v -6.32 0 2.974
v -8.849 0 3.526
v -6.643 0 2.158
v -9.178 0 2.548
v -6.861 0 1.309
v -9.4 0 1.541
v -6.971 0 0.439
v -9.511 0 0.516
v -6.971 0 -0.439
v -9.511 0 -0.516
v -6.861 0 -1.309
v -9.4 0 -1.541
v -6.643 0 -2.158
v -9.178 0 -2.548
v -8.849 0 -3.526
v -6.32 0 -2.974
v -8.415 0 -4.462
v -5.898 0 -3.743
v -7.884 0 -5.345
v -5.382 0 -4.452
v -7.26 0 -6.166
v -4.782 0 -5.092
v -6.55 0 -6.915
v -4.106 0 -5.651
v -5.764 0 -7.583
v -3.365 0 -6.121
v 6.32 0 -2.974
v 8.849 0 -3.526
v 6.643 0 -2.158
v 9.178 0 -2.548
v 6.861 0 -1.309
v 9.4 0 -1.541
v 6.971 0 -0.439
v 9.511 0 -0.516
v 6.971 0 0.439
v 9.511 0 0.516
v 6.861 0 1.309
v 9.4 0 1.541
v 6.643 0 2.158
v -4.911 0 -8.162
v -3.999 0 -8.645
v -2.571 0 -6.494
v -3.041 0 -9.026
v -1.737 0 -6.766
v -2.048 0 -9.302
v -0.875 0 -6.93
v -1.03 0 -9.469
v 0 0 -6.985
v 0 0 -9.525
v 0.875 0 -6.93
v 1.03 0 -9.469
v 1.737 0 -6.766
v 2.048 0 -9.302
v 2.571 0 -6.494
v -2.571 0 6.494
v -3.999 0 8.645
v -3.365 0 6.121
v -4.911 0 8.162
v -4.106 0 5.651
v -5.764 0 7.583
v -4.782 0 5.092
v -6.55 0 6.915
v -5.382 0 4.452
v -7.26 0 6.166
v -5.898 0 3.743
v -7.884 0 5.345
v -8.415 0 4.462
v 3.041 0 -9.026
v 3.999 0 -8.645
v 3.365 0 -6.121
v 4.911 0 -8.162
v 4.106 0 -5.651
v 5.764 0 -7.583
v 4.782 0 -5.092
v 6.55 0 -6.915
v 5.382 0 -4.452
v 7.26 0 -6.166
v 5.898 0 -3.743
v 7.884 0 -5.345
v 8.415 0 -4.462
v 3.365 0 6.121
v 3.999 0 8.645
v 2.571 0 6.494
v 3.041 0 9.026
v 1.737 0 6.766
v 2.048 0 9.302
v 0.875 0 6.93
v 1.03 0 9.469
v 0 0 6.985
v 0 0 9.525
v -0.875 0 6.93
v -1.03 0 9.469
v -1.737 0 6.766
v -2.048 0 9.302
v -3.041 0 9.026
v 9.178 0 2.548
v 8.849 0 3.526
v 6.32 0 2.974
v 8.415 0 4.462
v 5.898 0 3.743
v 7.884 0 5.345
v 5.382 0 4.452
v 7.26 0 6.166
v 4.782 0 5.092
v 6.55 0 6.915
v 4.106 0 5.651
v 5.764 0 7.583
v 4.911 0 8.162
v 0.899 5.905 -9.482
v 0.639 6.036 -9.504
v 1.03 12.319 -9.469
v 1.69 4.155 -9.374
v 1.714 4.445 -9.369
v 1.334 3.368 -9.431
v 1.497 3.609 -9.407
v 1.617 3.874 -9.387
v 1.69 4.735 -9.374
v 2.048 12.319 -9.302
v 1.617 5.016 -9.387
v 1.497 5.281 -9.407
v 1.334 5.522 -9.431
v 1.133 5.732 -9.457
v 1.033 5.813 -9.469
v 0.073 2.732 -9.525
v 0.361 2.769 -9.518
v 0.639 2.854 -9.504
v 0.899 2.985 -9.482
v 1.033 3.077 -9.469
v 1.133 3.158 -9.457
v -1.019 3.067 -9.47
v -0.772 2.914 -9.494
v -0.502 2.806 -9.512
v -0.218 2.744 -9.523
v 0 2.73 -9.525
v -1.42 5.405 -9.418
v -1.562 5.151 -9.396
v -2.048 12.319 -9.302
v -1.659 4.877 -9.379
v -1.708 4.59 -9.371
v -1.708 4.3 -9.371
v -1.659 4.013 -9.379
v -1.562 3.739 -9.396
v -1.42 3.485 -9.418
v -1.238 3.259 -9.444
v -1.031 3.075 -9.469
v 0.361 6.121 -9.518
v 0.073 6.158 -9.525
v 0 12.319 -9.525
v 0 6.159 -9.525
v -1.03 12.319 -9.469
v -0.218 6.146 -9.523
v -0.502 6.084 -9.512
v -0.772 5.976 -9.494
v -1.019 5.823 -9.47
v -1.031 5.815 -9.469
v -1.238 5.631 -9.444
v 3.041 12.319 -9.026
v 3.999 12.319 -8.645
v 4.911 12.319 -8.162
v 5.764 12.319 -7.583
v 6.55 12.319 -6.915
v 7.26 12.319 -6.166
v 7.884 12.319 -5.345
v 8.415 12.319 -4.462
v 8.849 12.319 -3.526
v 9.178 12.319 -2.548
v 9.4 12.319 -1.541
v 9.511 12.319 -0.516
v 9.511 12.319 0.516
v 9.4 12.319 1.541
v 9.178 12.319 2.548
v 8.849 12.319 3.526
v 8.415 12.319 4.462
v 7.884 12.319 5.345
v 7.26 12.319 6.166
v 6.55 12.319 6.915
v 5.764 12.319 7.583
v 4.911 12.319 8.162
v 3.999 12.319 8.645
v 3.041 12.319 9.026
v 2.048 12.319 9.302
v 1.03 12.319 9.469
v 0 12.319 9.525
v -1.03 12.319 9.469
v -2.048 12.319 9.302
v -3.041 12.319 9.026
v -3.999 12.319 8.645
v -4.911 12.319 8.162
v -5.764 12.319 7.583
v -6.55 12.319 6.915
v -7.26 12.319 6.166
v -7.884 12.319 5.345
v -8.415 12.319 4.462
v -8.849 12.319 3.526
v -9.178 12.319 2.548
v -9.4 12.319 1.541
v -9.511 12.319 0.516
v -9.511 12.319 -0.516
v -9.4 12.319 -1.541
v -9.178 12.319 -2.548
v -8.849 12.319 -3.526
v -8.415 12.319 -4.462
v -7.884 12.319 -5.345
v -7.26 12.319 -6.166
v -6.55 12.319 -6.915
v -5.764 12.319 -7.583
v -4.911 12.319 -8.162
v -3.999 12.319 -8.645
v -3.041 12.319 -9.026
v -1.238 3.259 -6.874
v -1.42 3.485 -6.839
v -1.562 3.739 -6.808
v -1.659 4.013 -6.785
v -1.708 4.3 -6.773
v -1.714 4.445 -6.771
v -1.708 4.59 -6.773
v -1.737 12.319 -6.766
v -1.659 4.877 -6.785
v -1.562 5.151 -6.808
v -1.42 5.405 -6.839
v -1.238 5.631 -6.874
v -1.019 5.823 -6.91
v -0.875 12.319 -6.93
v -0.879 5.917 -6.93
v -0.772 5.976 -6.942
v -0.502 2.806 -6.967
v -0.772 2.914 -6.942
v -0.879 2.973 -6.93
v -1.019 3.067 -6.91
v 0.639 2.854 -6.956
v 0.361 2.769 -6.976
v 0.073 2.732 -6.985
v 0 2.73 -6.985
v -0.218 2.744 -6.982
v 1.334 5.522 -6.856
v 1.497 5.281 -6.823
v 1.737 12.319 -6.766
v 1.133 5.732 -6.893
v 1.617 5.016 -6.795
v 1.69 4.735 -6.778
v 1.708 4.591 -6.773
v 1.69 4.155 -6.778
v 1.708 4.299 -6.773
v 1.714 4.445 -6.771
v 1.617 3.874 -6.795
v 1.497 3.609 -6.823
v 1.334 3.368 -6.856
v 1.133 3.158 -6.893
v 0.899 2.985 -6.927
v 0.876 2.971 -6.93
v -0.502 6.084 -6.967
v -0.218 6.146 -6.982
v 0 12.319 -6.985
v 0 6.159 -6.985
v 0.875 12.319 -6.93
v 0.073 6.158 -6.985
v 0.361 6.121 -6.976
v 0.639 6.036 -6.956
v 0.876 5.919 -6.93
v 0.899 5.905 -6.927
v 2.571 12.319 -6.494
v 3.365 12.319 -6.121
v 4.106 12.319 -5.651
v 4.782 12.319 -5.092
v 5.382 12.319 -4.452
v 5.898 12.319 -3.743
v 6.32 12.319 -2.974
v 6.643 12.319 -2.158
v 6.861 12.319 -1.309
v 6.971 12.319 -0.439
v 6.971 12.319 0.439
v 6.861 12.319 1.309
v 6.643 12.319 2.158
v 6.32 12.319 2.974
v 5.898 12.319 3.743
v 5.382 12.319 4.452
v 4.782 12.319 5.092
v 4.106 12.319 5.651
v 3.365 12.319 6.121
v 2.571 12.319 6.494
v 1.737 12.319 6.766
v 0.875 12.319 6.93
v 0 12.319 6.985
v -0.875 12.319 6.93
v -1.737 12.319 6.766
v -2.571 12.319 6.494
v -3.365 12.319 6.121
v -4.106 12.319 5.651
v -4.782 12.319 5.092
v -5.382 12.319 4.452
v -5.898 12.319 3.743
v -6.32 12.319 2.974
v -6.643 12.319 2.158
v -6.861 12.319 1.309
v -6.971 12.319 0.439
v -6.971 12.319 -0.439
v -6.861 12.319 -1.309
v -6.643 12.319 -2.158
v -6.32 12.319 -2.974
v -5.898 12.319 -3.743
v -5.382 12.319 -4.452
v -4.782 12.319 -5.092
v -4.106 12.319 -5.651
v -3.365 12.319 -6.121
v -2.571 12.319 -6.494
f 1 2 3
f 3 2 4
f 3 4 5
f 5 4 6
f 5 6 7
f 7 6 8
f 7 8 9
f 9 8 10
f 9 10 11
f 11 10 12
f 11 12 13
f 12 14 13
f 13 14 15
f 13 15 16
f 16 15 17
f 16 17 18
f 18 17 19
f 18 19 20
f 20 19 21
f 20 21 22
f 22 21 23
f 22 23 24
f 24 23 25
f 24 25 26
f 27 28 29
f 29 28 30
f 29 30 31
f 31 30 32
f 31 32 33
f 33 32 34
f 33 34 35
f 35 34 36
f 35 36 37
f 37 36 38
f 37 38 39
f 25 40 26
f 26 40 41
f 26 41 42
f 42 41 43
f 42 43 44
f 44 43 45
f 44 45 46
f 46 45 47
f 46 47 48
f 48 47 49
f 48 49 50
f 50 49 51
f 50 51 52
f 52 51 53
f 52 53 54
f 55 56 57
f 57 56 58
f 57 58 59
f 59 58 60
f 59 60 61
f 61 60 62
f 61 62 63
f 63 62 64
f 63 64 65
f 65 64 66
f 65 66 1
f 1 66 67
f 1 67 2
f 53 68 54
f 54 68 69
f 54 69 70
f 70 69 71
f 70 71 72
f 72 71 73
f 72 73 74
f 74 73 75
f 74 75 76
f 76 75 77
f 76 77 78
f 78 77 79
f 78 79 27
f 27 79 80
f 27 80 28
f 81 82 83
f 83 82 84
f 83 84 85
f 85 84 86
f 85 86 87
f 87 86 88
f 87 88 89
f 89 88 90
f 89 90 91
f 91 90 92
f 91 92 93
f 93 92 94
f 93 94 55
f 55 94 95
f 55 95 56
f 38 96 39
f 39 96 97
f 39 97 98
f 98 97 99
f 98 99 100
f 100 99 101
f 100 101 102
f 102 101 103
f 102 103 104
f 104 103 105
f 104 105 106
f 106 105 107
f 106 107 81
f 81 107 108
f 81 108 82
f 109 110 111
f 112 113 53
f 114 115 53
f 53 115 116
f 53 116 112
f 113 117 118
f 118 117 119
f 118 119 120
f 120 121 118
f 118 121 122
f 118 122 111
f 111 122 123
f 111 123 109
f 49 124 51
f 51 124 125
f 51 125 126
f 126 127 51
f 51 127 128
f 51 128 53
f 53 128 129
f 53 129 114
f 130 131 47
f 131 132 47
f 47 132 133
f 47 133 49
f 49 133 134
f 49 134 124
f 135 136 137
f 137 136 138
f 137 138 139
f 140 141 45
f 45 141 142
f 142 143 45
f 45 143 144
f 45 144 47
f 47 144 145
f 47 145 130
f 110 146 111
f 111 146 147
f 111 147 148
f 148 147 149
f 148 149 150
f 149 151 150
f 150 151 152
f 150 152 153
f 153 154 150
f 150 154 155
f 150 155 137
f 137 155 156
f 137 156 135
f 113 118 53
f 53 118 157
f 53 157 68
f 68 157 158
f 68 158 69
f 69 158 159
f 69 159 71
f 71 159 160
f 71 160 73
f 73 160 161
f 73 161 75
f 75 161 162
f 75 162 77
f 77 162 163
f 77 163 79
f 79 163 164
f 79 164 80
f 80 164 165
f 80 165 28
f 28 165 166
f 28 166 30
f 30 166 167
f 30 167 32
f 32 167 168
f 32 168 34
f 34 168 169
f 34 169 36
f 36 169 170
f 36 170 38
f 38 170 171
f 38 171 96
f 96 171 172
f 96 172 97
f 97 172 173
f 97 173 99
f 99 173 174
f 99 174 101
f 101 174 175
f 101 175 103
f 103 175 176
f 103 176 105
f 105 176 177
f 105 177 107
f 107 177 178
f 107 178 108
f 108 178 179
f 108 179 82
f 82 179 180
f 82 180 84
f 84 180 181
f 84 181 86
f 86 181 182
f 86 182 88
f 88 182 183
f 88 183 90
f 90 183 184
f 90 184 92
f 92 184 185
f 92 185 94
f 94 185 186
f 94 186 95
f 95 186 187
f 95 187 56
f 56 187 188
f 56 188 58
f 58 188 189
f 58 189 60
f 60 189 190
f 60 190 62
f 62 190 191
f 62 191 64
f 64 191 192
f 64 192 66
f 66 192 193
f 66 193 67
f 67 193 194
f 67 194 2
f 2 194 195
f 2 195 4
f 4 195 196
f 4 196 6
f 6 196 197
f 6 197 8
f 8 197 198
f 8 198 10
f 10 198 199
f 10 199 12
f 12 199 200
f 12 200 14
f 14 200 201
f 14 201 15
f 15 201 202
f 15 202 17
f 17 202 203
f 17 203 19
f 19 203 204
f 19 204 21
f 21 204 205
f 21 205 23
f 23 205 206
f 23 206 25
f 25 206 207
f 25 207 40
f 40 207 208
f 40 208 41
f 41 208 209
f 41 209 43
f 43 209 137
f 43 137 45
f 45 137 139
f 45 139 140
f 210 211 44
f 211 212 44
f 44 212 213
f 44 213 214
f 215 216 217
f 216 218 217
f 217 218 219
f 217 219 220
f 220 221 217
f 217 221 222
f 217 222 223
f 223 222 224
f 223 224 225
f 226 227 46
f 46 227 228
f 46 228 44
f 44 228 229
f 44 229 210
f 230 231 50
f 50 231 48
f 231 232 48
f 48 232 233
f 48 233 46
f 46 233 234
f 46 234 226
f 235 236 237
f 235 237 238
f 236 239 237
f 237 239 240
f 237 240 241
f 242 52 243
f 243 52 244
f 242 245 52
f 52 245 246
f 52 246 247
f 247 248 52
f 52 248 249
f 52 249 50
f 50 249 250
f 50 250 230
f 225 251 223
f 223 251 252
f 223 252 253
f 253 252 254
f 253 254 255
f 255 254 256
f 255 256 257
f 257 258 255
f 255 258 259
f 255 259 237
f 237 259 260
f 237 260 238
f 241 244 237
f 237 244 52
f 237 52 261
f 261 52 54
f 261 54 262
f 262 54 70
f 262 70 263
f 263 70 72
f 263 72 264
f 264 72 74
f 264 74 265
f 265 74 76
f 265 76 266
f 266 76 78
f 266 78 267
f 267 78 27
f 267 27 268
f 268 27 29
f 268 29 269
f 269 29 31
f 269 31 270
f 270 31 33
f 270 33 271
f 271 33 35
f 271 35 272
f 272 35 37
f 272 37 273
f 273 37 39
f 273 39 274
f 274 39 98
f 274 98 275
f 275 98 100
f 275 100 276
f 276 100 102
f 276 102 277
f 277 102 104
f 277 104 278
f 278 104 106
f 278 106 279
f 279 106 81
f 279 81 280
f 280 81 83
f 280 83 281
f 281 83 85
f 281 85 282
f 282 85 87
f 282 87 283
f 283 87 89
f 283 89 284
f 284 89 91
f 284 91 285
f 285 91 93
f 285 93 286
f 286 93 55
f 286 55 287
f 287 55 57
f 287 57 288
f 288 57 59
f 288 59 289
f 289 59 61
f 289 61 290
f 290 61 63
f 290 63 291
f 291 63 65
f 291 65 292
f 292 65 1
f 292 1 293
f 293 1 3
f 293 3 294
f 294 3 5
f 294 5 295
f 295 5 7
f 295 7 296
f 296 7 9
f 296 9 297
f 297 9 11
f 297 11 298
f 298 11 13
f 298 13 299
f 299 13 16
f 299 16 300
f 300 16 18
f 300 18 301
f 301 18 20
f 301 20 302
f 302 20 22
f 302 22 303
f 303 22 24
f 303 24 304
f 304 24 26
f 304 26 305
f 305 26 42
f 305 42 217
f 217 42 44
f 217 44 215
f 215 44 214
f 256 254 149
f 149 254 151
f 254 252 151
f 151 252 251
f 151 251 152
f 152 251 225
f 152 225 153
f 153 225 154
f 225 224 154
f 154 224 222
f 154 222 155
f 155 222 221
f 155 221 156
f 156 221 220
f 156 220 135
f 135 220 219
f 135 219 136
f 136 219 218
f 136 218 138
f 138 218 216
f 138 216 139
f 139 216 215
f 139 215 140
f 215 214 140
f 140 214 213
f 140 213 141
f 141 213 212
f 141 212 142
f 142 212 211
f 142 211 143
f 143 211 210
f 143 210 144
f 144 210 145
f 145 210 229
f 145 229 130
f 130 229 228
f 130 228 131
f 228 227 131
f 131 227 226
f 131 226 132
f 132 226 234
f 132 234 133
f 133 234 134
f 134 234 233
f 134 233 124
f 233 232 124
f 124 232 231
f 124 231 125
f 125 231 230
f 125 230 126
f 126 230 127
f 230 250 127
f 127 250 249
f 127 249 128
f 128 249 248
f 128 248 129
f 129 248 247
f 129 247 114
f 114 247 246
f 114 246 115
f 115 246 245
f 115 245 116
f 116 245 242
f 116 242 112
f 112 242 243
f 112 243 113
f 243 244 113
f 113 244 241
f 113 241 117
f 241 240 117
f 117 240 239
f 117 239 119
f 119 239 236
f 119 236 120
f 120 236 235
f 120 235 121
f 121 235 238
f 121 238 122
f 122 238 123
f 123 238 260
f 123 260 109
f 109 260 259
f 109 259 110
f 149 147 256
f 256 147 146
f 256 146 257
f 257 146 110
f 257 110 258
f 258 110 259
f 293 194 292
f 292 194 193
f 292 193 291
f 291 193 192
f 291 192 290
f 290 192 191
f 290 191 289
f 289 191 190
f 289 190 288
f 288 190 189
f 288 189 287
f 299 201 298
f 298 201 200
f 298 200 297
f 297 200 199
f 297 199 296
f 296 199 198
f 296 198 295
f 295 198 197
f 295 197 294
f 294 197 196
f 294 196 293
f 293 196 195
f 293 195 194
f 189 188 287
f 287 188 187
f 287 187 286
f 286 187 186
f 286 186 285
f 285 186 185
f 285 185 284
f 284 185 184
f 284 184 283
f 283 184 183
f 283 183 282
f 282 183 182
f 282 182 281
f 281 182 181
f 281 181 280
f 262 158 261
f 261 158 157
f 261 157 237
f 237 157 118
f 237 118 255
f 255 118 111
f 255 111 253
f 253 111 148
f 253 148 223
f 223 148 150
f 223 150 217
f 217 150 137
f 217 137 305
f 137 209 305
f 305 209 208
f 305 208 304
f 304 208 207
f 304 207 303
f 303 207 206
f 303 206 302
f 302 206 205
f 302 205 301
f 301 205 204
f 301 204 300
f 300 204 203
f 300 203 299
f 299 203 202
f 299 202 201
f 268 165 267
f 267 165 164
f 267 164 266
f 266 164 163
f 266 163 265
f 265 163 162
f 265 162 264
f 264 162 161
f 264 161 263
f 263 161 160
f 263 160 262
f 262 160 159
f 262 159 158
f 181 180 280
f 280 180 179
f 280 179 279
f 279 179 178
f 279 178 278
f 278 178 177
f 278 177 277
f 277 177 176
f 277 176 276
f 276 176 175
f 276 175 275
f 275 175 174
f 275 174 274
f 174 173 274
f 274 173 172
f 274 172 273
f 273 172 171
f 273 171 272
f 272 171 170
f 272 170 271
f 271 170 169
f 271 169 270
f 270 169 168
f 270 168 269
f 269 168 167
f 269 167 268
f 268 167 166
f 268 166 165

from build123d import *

# Parameters (mm, degrees)
SKETCH1_R           = 9.525
SKETCH1_R_2         = 6.985
BOSS_EXTRUDE1_DEPTH = 4.445
SKETCH3_R           = 9.525
SKETCH3_R_2         = 6.985
BOSS_EXTRUDE2_DEPTH = 6.35
SKETCH2_R           = 1.7145
CUT_EXTRUDE1_DEPTH  = 10.525
SKETCH4_R           = 9.525
SKETCH4_R_2         = 6.985
BOSS_EXTRUDE3_DEPTH = 1.524


with BuildPart() as part:
    # Sketch1 → Boss-Extrude1 (new body)
    with BuildSketch(Plane(origin=(0, 0, 0), x_dir=(1, 0, 0), z_dir=(0, 1, 0))):
        Circle(SKETCH1_R)
        Circle(SKETCH1_R_2, mode=Mode.SUBTRACT)
    extrude(amount=BOSS_EXTRUDE1_DEPTH)

    # Sketch3 → Boss-Extrude2 (add)
    with BuildSketch(Plane(origin=(0, 4.445, 0), x_dir=(1, 0, 0), z_dir=(0, 1, 0))):
        Circle(SKETCH3_R)
        Circle(SKETCH3_R_2, mode=Mode.SUBTRACT)
    extrude(amount=BOSS_EXTRUDE2_DEPTH)

    # Sketch2 → Cut-Extrude1 (cut, through all)
    with BuildSketch(Plane.XY):
        with Locations((0, 4.445)):
            Circle(SKETCH2_R)
    extrude(amount=-CUT_EXTRUDE1_DEPTH, mode=Mode.SUBTRACT)

    # Sketch4 → Boss-Extrude3 (add)
    with BuildSketch(Plane(origin=(0, 10.795, 0), x_dir=(1, 0, 0), z_dir=(0, 1, 0))):
        Circle(SKETCH4_R)
        Circle(SKETCH4_R_2, mode=Mode.SUBTRACT)
    extrude(amount=BOSS_EXTRUDE3_DEPTH)


solid = part.part
